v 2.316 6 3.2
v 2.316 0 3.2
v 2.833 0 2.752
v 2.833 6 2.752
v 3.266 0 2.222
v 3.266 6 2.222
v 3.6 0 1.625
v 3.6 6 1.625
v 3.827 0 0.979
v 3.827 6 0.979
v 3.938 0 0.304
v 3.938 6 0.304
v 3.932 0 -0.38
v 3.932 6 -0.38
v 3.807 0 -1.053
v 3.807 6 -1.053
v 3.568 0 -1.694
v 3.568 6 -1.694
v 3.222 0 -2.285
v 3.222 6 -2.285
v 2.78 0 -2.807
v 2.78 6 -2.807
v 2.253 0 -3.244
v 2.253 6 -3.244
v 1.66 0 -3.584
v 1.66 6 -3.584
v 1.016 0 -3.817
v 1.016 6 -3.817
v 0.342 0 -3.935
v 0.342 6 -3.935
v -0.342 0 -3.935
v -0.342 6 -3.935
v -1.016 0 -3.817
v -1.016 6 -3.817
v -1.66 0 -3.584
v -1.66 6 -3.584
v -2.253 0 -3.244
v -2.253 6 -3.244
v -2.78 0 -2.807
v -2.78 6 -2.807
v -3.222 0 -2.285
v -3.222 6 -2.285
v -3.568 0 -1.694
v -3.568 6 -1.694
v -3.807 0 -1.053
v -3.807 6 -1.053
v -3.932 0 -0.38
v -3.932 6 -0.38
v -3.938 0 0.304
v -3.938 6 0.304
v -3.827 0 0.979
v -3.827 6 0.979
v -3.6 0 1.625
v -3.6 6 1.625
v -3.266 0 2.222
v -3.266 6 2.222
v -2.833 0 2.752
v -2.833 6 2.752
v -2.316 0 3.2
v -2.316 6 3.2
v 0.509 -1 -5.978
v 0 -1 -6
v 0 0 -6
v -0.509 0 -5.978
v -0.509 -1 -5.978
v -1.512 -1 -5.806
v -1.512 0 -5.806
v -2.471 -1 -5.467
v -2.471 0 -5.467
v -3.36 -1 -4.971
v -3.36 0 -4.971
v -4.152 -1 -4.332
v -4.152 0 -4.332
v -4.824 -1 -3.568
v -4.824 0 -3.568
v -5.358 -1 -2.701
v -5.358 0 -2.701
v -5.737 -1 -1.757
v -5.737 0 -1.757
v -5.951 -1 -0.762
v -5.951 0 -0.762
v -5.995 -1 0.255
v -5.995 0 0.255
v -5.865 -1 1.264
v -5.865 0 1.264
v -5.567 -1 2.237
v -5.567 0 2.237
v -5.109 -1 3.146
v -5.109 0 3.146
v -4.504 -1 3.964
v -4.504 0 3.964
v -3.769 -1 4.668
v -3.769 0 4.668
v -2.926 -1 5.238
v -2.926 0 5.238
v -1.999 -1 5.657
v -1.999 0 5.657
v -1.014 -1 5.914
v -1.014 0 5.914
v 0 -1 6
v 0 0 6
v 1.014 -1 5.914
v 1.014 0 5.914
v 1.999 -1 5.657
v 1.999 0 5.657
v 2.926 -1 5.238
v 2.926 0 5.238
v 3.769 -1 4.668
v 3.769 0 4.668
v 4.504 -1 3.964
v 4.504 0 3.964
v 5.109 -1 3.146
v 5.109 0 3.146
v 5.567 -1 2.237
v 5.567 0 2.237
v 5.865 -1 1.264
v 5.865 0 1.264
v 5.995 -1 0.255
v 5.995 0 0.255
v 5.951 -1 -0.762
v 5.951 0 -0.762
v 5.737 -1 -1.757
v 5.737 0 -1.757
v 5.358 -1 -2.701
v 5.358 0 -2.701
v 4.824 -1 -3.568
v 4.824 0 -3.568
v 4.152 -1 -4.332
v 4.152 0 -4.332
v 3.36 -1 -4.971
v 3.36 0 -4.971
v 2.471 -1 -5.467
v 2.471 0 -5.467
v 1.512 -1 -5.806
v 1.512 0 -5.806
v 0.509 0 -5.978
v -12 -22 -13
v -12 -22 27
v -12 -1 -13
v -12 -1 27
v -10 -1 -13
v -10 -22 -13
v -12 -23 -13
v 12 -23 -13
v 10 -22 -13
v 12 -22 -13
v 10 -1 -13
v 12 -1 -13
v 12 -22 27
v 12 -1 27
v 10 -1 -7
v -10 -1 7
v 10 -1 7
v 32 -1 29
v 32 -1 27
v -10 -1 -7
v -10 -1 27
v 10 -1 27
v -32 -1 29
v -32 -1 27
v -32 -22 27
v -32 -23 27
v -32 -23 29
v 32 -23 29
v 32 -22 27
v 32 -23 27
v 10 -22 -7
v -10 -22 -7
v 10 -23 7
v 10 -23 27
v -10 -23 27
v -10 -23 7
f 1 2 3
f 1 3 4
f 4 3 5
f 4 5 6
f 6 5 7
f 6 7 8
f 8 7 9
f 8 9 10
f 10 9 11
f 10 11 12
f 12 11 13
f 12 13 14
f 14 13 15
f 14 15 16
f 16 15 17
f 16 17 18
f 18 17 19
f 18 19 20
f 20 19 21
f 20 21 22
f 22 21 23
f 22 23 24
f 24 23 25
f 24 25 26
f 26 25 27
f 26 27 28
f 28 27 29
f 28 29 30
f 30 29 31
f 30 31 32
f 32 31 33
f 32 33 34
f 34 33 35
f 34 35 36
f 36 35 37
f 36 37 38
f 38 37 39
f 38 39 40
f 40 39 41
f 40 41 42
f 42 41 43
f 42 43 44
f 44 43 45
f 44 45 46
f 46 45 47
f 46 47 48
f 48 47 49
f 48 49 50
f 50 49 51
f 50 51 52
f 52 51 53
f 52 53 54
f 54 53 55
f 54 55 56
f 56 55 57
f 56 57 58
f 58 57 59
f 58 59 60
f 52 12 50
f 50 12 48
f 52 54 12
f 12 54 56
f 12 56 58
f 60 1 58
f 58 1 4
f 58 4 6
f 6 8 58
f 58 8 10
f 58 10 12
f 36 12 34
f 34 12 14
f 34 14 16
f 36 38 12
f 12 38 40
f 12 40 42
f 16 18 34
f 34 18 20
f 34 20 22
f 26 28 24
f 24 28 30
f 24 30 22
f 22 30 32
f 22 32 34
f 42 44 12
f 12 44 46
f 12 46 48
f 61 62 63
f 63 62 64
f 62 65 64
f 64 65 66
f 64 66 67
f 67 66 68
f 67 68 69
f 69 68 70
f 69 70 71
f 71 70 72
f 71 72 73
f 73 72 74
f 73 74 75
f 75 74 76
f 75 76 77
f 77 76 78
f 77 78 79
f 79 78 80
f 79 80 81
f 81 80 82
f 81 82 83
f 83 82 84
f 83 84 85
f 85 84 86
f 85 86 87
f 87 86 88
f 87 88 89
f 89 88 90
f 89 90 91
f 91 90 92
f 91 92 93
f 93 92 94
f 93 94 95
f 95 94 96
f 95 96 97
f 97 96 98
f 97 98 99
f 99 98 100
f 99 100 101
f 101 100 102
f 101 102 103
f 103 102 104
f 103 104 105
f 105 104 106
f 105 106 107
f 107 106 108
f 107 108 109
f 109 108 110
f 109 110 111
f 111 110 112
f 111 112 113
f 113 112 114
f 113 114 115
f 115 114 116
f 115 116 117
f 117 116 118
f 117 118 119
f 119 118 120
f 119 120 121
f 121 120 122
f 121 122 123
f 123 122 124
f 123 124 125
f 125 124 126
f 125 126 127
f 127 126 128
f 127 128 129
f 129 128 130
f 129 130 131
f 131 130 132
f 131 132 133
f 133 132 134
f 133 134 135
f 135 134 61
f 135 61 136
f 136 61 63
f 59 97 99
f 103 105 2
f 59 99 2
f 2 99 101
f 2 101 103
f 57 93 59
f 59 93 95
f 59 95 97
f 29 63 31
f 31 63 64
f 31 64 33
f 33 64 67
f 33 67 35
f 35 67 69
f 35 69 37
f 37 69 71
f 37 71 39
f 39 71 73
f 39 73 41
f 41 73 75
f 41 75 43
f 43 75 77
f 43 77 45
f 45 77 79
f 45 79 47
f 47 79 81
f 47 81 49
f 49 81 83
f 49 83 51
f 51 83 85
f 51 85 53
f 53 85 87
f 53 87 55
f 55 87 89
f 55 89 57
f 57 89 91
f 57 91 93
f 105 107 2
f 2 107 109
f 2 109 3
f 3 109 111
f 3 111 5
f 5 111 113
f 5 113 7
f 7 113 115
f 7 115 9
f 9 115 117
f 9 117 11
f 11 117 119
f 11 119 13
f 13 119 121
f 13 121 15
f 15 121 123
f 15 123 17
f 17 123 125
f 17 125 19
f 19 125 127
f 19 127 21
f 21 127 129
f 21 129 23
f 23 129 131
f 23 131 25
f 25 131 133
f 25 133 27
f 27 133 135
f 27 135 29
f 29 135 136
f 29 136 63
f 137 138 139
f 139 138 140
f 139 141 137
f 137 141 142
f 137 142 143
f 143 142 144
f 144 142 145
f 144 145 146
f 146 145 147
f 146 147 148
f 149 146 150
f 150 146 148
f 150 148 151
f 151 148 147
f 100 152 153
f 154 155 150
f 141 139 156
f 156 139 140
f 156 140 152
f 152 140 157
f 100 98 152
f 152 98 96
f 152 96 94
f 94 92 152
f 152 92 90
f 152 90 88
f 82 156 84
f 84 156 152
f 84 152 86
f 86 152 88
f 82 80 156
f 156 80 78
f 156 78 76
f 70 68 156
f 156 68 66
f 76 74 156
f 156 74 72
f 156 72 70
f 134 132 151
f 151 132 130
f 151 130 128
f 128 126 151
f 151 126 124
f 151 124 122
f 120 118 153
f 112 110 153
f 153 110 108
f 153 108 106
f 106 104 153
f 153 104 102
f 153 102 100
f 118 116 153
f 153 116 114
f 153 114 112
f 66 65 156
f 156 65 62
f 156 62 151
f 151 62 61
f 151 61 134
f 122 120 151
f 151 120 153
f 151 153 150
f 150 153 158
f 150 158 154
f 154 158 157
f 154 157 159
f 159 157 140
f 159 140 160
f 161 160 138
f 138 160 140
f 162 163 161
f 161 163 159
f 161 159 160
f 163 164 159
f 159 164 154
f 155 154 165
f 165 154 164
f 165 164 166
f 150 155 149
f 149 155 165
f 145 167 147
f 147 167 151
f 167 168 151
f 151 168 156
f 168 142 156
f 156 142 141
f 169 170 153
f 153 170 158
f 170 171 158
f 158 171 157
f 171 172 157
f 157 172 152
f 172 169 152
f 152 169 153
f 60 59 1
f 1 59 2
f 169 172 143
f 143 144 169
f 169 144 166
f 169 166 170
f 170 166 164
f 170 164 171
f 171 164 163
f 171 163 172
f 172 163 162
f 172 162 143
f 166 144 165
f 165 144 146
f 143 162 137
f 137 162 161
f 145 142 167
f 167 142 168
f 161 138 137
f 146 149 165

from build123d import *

# Parameters (mm, degrees)
SKETCH1_R           = 3.95
BOSS_EXTRUDE1_DEPTH = 6
SKETCH2_R           = 6
BOSS_EXTRUDE2_DEPTH = 1
SKETCH3_W           = 24
SKETCH3_H           = 14
SKETCH3_H_2         = 26
SKETCH3_R           = 6
BOSS_EXTRUDE3_DEPTH = 21
SKETCH6_W           = 64
SKETCH6_H           = 2
BOSS_EXTRUDE5_DEPTH = 21
SKETCH8_W           = 20
SKETCH8_H           = 20
SKETCH8_H_2         = 6
CUT_EXTRUDE1_DEPTH  = 49.020828814
SKETCH9_W           = 4.63141447
SKETCH9_H           = 1.5
CUT_EXTRUDE2_DEPTH  = 6
BOSS_EXTRUDE6_DEPTH = 1
SKETCH11_W          = 20
SKETCH11_H          = 20
CUT_EXTRUDE3_DEPTH  = 52.46843693


with BuildPart() as part:
    # Sketch1 → Boss-Extrude1 (new body)
    with BuildSketch(Plane(origin=(0, 0, 0), x_dir=(1, 0, 0), z_dir=(0, 1, 0))):
        with Locations(Location((0, 0, 0), (0, 0, 270))):
            Circle(SKETCH1_R)
    extrude(amount=BOSS_EXTRUDE1_DEPTH)

    # Sketch2 → Boss-Extrude2 (add)
    with BuildSketch(Plane.XZ):
        with Locations(Location((0, 0, 0), (0, 0, 270))):
            Circle(SKETCH2_R)
    extrude(amount=BOSS_EXTRUDE2_DEPTH)

    # Sketch3 → Boss-Extrude3 (add)
    # profile 1 of 3: a face of its own
    with BuildSketch(Plane.XZ.offset(1)):
        with Locations((0, 20)):
            Rectangle(SKETCH3_W, SKETCH3_H)
    # profile 2 of 3: a face of its own
    with BuildSketch(Plane.XZ.offset(1)):
        Rectangle(SKETCH3_W, SKETCH3_H_2)
        with Locations(Location((0, 0, 0), (0, 0, 270))):
            Circle(SKETCH3_R, mode=Mode.SUBTRACT)
    # profile 3 of 3: a face of its own
    with BuildSketch(Plane.XZ.offset(1)):
        with Locations(Location((0, 0, 0), (0, 0, 270))):
            Circle(SKETCH3_R)
    extrude(amount=BOSS_EXTRUDE3_DEPTH)

    # Sketch6 → Boss-Extrude5 (add)
    with BuildSketch(Plane.XZ.offset(22)):
        with Locations((0, 28)):
            Rectangle(SKETCH6_W, SKETCH6_H)
    extrude(amount=-BOSS_EXTRUDE5_DEPTH)

    # Sketch8 → Cut-Extrude1 (cut, through all)
    with BuildSketch(Plane(origin=(0, -1, 0), x_dir=(1, 0, 0), z_dir=(0, 1, 0))):
        with Locations((0, -17)):
            Rectangle(SKETCH8_W, SKETCH8_H)
        with Locations((0, 10)):
            Rectangle(SKETCH8_W, SKETCH8_H_2)
    extrude(amount=-CUT_EXTRUDE1_DEPTH, mode=Mode.SUBTRACT)

    # Sketch9 → Cut-Extrude2 (cut)
    with BuildSketch(Plane(origin=(0, 6, 0), x_dir=(1, 0, 0), z_dir=(0, 1, 0))):
        with Locations((0, -3.95)):
            Rectangle(SKETCH9_W, SKETCH9_H)
    extrude(amount=-CUT_EXTRUDE2_DEPTH, mode=Mode.SUBTRACT)

    # Sketch10 → Boss-Extrude6 (add)
    with BuildSketch(Plane.XZ.offset(22)):
        Polygon((-32, 29), (32, 29), (32, 27), (12, -13), (-12, -13), (-32, 27), align=None)
    extrude(amount=BOSS_EXTRUDE6_DEPTH)

    # Sketch11 → Cut-Extrude3 (cut, through all)
    with BuildSketch(Plane(origin=(0, -22, 0), x_dir=(1, 0, 0), z_dir=(0, 1, 0))):
        with Locations((0, -17)):
            Rectangle(SKETCH11_W, SKETCH11_H)
    extrude(amount=-CUT_EXTRUDE3_DEPTH, mode=Mode.SUBTRACT)


solid = part.part
